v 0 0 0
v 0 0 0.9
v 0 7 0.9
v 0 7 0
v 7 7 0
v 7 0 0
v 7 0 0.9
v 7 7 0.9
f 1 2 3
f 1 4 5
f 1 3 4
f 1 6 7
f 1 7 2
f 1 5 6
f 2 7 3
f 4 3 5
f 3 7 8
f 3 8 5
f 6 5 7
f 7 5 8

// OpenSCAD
/* Warning, this is a very basic generator with a lot of approximation 
input data : [VQFN, TYB, 7x7x0.9mm, 56, , B, C04-21494B]
generated by com.zoubworld.electronics.cad.model3d.Basic
Date : Sun Feb 15 10:50:49 CET 2026
*/

//body
color("black")
translate([0,0,0])
cube([7.0,7.0,0.9], center=false);
